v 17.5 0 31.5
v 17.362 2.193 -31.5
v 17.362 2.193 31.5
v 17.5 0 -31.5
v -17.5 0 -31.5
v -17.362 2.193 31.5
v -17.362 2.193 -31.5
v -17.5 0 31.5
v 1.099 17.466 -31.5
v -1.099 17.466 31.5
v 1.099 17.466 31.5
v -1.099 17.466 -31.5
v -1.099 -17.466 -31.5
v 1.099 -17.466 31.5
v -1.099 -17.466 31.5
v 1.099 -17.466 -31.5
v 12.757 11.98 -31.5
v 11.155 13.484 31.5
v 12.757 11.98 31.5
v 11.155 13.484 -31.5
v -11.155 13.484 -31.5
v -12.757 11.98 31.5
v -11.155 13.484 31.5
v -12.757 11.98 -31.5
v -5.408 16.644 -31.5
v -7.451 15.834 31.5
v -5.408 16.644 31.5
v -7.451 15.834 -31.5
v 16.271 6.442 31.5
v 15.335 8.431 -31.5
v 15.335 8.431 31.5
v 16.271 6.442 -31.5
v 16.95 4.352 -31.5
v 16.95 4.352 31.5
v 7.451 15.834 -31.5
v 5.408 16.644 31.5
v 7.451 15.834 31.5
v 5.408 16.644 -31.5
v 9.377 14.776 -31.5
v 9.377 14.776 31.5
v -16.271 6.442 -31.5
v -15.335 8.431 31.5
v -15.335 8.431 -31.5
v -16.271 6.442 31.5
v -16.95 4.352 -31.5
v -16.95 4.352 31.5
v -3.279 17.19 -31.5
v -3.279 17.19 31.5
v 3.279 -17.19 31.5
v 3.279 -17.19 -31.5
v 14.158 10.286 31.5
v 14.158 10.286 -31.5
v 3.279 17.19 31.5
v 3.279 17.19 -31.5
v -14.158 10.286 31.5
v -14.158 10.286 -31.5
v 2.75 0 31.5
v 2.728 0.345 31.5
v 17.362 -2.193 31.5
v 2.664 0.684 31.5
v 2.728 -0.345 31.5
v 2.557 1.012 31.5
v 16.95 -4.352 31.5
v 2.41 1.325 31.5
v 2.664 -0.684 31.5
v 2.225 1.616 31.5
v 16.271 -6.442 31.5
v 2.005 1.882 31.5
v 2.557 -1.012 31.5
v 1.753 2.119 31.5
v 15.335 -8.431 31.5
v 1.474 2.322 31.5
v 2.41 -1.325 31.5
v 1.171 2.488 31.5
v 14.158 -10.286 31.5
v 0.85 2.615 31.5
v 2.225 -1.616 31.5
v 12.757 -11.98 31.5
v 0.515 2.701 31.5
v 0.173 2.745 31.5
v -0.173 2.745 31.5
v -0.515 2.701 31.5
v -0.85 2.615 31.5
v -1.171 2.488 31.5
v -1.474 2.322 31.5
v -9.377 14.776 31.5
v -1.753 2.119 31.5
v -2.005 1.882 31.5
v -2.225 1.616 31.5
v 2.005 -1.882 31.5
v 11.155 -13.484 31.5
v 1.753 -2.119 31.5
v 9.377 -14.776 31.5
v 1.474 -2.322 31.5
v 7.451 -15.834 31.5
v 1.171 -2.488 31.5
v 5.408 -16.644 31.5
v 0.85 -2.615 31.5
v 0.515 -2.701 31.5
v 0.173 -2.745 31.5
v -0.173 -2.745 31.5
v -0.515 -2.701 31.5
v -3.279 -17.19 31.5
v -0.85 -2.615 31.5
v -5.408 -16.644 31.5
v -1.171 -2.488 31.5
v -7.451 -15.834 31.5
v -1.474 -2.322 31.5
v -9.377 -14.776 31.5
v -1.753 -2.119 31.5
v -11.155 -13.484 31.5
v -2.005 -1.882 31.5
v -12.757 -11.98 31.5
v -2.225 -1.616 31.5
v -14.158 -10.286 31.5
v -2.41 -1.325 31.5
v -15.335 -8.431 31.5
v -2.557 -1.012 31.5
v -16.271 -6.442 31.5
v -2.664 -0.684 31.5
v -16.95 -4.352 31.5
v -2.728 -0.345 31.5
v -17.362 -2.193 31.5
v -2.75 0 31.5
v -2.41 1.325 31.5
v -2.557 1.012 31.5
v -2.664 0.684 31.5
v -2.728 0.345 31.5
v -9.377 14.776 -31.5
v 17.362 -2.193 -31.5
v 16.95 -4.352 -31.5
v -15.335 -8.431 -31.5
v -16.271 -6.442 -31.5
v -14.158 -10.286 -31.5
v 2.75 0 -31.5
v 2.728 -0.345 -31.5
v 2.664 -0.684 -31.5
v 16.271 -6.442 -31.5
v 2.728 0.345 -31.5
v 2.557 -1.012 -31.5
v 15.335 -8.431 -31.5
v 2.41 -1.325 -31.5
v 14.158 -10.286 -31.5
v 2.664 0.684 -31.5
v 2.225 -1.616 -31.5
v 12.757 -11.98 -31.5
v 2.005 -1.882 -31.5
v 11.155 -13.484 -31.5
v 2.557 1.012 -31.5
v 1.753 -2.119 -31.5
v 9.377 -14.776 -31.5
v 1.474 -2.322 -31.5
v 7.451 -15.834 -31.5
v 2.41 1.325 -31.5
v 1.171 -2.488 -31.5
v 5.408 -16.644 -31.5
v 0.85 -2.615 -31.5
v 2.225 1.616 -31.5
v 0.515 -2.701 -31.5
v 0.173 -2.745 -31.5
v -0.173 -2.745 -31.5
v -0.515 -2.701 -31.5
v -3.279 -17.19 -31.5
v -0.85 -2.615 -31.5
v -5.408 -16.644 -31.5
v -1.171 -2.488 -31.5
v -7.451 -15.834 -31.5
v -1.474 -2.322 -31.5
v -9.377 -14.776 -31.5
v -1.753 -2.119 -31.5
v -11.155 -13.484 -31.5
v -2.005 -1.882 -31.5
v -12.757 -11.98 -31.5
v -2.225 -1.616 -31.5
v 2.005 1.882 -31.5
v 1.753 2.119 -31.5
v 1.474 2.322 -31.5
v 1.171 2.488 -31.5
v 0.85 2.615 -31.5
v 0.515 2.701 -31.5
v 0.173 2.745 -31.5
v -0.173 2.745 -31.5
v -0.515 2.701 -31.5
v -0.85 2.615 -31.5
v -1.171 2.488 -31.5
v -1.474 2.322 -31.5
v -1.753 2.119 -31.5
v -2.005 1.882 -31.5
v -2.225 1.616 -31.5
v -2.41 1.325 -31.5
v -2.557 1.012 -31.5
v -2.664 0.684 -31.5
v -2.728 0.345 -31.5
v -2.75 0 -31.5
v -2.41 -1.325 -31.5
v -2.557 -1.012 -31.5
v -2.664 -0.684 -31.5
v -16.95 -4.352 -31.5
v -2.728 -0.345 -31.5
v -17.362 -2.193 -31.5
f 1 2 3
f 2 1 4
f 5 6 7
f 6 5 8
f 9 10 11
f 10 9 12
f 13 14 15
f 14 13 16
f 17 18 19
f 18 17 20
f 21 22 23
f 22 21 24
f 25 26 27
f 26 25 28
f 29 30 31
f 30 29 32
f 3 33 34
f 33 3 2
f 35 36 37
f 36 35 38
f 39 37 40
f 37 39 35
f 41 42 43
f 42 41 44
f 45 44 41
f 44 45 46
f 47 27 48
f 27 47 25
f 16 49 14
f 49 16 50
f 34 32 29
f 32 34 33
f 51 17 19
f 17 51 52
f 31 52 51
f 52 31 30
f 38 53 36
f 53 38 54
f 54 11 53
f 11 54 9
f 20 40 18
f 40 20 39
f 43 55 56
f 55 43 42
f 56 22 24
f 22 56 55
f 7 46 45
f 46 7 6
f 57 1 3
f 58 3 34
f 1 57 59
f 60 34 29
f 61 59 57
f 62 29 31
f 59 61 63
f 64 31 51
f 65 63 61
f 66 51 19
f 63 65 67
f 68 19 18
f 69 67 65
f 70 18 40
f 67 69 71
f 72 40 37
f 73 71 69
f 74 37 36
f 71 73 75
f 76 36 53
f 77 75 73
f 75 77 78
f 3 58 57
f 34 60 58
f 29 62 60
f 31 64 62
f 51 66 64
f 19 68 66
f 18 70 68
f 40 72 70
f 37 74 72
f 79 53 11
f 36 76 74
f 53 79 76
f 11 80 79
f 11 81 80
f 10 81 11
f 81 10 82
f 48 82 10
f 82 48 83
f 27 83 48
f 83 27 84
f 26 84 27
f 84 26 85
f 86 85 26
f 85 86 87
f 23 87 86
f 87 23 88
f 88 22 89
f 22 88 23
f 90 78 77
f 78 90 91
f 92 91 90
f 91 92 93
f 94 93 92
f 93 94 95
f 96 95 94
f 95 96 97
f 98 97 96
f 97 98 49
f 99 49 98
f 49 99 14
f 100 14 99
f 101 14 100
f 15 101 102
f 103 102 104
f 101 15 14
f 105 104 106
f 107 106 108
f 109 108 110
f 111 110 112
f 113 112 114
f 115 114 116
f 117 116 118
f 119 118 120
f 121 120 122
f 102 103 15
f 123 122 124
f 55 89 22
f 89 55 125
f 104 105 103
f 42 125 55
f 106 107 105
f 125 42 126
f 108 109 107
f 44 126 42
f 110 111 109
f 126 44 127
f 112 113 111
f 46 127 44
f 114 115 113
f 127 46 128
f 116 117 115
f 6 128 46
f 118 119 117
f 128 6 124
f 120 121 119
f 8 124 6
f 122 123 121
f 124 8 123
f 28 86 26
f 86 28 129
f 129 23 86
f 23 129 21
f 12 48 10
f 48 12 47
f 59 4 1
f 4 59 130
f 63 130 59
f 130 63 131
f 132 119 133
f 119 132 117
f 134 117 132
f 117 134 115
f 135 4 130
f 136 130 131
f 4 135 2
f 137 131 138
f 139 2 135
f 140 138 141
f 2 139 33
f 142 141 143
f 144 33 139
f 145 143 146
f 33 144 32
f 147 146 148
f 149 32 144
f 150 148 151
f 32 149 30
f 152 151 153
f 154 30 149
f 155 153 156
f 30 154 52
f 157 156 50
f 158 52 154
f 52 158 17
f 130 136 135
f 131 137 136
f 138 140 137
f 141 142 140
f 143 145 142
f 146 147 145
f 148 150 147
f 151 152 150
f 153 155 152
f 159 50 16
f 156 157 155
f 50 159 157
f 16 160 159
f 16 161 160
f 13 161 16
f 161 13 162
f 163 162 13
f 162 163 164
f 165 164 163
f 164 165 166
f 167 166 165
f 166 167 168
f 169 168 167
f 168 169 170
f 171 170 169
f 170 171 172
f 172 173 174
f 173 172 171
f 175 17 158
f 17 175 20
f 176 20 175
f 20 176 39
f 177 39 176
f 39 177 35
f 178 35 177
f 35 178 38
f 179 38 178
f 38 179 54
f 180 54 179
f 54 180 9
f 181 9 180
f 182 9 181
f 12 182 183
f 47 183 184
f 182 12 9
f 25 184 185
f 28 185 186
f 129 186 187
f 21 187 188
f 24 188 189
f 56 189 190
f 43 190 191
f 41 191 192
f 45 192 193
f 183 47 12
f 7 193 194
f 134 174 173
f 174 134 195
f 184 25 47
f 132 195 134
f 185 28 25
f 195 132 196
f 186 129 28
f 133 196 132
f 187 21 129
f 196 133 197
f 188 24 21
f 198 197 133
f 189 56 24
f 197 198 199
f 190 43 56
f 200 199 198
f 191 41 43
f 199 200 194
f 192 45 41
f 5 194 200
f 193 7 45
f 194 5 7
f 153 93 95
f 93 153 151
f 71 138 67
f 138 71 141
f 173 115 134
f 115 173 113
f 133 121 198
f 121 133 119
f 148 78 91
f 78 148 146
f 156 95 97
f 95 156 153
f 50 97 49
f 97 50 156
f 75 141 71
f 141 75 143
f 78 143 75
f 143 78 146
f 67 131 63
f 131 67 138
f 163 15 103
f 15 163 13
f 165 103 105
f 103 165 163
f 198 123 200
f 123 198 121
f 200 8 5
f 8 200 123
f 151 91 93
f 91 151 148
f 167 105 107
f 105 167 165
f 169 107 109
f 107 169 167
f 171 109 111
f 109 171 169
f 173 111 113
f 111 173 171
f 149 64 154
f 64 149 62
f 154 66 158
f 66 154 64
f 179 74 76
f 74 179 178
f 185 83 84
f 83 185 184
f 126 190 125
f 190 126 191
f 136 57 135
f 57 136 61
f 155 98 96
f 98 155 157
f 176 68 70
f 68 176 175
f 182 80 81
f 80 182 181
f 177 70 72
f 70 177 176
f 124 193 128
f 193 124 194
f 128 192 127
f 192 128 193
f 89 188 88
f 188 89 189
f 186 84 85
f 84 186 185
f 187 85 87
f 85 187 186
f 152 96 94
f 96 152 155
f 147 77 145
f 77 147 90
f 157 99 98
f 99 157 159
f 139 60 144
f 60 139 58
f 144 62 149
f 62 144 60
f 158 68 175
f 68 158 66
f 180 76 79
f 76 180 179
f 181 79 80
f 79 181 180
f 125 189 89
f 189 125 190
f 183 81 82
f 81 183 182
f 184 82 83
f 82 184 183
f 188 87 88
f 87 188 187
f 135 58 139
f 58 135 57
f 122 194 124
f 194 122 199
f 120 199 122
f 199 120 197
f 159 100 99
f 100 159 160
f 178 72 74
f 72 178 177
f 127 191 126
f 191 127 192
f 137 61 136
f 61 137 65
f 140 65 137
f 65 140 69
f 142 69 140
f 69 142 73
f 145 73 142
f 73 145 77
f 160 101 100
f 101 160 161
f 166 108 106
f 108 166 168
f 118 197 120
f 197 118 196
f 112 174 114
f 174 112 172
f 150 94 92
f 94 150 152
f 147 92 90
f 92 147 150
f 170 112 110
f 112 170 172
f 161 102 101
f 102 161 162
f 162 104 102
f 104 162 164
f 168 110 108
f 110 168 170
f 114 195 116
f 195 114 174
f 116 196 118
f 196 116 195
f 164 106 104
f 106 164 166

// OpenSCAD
$fn = 50;


difference() {
	union() {
		translate(v = [0, 0, -31.5000000000]) {
			cylinder(h = 63, r = 17.5000000000);
		}
	}
	union() {
		translate(v = [0, 0, -100.0000000000]) {
			cylinder(h = 200, r = 2.7500000000);
		}
	}
}
